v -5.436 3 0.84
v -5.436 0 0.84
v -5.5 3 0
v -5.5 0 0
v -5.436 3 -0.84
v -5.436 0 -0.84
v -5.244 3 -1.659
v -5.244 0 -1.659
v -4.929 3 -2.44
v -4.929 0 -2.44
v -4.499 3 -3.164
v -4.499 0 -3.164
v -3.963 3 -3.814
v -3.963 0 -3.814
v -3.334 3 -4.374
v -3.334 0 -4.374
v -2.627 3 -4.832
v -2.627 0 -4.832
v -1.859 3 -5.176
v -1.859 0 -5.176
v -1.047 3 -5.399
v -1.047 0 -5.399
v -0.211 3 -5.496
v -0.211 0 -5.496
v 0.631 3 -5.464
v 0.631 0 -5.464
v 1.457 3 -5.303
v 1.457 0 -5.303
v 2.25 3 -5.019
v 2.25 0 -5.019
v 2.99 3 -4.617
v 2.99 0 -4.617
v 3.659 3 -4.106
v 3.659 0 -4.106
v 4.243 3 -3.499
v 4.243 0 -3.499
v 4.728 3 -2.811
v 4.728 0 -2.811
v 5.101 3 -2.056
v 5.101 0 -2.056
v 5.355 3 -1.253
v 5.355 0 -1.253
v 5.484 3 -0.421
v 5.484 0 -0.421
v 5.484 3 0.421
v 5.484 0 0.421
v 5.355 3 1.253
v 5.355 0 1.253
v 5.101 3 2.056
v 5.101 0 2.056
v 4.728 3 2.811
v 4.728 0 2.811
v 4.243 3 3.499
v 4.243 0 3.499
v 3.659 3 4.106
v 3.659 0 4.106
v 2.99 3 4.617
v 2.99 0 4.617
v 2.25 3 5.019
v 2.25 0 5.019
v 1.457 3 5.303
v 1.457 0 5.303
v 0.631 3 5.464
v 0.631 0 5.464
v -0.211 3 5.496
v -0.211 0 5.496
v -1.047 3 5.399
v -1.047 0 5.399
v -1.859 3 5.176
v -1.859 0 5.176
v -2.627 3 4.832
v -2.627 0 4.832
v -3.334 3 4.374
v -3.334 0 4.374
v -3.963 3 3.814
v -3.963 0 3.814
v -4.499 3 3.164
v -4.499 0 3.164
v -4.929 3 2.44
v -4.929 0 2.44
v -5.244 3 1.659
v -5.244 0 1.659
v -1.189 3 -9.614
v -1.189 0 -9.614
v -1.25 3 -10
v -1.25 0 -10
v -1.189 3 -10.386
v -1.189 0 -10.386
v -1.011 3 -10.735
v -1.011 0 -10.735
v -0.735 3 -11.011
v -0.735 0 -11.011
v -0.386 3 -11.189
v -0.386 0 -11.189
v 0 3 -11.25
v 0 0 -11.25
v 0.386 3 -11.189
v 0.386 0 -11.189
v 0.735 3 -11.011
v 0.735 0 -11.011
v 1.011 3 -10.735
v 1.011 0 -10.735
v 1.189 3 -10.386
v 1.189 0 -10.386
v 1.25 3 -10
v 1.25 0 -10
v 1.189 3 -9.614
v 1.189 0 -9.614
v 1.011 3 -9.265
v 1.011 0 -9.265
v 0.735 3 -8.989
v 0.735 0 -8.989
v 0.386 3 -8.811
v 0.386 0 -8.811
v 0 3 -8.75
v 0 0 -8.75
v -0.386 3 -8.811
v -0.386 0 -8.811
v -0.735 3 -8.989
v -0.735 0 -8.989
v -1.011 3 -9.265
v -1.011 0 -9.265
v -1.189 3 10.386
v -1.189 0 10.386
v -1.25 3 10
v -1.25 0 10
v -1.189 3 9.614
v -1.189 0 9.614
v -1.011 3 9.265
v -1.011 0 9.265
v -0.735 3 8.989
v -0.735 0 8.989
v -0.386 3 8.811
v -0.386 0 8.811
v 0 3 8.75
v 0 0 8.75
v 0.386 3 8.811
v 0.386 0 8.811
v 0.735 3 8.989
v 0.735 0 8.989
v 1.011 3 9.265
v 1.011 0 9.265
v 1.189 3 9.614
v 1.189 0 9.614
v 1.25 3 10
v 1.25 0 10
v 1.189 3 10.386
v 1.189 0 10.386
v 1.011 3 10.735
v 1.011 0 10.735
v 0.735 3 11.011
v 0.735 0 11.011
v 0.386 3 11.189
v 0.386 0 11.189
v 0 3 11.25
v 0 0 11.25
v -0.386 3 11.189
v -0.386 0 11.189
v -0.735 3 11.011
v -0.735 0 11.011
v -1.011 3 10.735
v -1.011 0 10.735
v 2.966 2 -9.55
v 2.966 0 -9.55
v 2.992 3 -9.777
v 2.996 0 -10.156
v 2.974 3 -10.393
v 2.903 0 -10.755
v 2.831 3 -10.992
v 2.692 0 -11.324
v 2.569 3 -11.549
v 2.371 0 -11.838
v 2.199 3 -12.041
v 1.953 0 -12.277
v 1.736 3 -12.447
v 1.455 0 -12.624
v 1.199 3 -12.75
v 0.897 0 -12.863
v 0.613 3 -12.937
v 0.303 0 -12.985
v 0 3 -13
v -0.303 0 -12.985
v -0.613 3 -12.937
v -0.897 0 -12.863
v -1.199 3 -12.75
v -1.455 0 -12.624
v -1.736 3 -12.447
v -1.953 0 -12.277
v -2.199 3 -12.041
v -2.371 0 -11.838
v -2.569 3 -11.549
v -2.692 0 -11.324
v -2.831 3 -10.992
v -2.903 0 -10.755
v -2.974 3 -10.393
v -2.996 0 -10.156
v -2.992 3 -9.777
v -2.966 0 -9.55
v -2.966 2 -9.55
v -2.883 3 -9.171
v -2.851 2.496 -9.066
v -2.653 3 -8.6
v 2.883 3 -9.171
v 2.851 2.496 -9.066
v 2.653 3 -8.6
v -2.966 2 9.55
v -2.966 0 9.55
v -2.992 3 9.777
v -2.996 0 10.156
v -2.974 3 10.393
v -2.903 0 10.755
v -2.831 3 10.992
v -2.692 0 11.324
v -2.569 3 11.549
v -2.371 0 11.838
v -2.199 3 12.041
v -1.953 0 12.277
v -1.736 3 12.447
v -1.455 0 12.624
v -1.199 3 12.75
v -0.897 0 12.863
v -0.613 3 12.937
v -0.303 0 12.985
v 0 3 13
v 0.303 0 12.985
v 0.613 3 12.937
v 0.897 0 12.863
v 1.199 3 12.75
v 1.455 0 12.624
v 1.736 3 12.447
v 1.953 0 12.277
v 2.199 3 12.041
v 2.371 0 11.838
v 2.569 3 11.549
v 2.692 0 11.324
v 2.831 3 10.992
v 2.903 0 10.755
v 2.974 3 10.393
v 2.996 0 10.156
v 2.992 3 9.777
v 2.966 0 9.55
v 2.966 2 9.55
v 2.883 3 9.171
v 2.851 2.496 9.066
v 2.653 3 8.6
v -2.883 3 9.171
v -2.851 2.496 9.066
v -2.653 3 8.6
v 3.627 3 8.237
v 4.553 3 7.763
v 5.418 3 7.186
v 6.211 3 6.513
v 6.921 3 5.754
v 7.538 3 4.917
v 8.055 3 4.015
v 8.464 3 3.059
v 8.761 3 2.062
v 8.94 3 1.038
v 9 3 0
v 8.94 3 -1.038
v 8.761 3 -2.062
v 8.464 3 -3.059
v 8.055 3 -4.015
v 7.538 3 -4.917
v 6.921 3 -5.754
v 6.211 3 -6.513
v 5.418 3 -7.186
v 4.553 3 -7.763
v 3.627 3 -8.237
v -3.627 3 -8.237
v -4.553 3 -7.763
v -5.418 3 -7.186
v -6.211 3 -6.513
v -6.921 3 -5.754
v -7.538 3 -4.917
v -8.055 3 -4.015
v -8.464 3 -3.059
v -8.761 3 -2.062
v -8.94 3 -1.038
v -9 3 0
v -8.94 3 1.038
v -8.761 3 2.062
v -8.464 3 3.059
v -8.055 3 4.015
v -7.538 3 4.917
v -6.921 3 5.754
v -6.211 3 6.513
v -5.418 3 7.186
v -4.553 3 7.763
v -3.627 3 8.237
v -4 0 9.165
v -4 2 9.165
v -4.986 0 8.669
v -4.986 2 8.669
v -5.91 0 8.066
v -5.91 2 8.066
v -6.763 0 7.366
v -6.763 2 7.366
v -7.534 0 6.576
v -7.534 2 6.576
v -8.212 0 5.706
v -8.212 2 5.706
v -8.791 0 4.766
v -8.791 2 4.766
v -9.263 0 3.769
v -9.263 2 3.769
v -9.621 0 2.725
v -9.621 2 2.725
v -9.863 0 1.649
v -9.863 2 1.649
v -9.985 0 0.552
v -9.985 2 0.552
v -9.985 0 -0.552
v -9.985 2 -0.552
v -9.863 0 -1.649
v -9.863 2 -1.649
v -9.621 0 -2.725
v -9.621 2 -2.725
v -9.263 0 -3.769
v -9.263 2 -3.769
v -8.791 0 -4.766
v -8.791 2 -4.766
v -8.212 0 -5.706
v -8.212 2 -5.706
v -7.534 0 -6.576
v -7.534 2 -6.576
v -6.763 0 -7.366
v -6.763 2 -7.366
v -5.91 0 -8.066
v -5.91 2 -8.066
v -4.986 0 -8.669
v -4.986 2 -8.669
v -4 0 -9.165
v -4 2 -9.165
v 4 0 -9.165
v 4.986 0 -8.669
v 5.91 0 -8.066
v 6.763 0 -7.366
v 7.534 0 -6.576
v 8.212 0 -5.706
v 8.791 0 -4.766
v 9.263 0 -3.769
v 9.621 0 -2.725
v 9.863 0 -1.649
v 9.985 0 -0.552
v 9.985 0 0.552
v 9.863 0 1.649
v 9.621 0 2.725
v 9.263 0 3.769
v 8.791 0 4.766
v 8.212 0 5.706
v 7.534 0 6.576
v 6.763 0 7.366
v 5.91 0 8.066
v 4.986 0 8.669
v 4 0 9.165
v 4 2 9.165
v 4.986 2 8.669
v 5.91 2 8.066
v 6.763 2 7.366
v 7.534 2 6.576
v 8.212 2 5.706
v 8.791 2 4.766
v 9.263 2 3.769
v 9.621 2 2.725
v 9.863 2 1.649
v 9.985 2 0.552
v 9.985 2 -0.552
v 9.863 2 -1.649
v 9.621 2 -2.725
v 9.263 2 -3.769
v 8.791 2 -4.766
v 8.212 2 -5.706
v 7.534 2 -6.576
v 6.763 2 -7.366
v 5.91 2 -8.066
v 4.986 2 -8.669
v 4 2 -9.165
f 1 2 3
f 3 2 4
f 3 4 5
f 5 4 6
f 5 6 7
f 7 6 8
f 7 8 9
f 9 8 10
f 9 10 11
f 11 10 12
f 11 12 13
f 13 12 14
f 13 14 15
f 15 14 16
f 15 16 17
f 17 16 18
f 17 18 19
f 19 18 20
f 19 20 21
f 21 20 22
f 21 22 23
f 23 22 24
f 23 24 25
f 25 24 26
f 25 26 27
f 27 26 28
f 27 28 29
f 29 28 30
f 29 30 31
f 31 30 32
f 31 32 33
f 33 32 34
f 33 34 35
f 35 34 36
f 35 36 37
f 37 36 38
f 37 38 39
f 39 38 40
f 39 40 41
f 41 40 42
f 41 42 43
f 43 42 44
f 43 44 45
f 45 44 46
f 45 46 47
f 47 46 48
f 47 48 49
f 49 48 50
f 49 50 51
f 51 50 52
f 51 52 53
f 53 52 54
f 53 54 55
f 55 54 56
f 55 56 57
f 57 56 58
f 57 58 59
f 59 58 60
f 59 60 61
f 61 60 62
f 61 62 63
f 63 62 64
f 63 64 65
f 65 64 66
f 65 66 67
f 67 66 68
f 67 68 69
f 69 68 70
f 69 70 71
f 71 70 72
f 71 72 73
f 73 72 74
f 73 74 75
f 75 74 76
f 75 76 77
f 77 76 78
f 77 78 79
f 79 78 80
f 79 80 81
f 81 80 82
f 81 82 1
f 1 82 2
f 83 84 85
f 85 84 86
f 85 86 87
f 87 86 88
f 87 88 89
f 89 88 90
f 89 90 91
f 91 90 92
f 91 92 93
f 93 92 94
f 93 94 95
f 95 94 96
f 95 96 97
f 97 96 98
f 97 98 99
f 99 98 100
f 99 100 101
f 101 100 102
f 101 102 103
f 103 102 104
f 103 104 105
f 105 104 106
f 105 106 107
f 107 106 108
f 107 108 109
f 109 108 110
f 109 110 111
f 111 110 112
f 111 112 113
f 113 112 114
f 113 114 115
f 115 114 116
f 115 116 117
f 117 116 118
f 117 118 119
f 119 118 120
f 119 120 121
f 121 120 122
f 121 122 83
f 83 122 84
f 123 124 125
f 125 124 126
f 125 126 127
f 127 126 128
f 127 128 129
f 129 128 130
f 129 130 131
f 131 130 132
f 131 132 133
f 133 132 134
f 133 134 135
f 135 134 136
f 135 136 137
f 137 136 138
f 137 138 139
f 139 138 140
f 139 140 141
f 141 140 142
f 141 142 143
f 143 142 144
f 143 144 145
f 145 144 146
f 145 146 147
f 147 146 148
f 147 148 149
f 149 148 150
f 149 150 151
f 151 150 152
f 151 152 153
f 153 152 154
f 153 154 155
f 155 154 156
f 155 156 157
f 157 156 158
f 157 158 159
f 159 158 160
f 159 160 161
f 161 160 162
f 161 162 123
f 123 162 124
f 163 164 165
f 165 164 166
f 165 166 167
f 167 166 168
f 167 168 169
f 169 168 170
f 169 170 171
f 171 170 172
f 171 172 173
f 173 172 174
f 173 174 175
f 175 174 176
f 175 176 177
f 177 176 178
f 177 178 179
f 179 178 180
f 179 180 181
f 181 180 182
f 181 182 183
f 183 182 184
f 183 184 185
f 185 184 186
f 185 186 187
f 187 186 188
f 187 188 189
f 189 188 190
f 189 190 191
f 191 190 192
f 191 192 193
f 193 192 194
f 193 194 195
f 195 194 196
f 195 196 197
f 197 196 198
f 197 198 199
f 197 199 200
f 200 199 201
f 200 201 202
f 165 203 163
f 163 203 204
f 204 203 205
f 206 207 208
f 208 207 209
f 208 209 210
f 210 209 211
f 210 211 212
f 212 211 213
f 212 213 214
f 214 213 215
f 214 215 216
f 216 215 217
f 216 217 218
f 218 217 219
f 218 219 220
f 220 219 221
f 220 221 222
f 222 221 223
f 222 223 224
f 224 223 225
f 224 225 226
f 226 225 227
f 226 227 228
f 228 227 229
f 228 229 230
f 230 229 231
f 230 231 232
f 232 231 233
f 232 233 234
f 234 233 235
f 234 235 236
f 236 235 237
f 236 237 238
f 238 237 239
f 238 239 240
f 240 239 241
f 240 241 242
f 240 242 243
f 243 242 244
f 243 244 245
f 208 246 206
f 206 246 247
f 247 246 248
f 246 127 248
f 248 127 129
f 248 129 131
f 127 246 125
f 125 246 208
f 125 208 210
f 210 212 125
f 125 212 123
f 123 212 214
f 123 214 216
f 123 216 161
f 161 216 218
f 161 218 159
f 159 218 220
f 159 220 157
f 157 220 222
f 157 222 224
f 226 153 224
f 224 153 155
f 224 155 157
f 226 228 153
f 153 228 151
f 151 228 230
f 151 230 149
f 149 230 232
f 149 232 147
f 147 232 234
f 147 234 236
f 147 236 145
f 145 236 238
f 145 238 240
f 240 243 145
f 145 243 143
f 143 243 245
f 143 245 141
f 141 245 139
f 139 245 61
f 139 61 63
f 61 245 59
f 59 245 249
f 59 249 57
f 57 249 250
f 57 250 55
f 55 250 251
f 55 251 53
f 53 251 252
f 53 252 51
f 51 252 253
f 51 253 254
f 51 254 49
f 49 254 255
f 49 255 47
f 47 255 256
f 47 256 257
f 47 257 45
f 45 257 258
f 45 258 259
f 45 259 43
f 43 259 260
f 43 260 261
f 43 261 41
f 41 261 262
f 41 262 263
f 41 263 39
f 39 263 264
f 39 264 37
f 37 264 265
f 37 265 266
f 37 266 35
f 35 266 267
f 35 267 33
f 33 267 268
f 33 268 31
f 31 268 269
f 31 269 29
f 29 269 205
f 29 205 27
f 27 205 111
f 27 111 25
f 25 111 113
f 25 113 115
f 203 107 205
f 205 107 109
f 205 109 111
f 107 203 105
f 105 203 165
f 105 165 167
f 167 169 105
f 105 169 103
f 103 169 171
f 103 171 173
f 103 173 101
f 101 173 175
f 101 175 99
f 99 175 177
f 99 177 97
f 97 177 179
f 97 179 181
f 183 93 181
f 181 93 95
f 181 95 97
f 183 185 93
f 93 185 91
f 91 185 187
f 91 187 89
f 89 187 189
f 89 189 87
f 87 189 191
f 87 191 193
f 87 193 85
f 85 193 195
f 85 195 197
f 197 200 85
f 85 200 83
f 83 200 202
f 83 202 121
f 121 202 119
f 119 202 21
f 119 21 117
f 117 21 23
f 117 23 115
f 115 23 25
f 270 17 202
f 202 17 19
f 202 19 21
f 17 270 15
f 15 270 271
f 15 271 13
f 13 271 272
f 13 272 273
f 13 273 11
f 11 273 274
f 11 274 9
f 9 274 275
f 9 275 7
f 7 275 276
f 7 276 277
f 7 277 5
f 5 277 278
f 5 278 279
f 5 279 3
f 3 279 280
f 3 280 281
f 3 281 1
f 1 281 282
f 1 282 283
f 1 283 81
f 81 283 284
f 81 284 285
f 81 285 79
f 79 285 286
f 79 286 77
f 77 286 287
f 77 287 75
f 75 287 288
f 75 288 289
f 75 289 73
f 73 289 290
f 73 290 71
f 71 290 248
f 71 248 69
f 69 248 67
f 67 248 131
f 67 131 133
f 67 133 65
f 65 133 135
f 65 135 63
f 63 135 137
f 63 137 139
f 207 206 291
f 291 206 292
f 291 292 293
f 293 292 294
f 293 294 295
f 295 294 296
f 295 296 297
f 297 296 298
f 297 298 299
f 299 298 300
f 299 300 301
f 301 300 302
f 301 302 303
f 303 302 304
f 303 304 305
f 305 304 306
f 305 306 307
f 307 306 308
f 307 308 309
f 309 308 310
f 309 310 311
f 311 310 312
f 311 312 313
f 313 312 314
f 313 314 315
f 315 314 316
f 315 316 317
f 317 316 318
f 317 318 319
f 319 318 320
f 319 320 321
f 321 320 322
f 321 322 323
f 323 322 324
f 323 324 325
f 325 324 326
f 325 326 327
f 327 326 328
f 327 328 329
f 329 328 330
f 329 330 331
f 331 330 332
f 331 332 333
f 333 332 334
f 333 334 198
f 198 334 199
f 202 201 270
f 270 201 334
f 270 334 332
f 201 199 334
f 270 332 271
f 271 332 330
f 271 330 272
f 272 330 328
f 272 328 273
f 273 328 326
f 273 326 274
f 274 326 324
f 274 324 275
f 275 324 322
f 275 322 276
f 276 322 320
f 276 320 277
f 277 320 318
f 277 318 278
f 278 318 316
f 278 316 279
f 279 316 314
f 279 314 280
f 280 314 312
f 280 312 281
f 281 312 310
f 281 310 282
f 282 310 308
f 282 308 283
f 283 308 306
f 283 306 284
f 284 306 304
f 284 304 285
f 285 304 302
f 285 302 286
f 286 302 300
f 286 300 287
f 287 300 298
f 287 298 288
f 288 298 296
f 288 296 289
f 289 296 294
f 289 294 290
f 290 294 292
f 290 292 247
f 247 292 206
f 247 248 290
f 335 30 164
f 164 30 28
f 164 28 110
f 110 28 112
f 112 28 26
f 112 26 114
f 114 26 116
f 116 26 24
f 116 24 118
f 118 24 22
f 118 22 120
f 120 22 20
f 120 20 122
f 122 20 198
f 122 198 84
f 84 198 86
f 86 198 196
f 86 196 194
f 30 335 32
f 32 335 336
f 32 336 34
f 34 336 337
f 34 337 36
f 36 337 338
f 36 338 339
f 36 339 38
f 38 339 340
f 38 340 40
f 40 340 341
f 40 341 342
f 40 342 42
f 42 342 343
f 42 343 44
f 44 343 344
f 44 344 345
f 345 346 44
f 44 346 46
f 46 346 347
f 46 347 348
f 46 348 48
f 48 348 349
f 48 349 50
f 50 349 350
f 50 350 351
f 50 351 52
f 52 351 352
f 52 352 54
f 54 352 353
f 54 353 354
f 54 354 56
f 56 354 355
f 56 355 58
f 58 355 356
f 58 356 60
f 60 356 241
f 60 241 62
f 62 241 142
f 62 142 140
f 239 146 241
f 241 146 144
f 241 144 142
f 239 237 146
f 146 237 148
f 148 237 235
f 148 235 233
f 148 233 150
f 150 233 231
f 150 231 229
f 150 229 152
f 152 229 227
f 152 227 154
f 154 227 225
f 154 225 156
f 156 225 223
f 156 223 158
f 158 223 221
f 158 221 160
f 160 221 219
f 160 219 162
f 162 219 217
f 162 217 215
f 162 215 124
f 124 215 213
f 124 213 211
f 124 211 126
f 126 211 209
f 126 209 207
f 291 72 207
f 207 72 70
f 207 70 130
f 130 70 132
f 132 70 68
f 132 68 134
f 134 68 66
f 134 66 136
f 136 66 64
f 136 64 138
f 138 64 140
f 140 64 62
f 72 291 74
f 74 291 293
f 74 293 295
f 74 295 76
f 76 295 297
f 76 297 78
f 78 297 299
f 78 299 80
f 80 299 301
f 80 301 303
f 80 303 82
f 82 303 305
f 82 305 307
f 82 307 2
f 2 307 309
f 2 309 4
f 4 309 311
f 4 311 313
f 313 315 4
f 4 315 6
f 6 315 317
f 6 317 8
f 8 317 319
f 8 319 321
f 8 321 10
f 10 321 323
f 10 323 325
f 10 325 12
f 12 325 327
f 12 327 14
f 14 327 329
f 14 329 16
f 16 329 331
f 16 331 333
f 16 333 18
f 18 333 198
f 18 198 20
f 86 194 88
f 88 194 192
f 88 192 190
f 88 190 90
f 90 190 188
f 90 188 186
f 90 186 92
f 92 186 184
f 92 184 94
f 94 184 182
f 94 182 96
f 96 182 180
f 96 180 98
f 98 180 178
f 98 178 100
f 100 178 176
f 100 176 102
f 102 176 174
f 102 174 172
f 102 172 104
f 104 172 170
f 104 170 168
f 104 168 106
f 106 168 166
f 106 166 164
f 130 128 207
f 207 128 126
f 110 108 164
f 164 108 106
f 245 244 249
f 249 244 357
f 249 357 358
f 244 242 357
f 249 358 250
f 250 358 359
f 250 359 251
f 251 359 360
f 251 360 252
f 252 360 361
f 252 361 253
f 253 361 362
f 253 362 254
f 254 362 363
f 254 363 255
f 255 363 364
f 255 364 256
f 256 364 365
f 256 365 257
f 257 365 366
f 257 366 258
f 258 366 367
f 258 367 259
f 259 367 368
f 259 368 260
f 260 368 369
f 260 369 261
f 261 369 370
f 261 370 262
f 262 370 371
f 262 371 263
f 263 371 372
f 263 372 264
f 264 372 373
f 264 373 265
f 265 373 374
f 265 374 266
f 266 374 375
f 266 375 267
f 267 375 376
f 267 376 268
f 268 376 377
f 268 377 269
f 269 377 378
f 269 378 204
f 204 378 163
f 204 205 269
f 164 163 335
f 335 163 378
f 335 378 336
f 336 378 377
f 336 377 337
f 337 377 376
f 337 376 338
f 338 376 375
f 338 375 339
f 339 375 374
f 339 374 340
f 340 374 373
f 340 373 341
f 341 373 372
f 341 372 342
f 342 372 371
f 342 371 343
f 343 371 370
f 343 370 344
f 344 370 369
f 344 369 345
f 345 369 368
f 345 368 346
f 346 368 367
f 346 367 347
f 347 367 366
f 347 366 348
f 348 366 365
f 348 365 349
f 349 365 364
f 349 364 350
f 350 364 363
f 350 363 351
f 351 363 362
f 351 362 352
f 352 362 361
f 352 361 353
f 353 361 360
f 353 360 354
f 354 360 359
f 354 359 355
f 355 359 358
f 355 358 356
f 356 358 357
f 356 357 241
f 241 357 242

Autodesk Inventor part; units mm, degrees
ref_plane "YZ Plane" through (0, 0, 0) normal (1, 0, 0) x (0, 1, 0)
ref_plane "XZ Plane" through (0, 0, 0) normal (0, 1, 0) x (-1, 0, 0)
ref_plane "XY Plane" through (0, 0, 0) normal (0, 0, 1) x (1, 0, 0)
sketch "스케치1" plane through (0, 0, 0) normal (0, 1, 0) x (-1, 0, 0)
  circle A0 centre (0, 0) radius 10
  circle A1 centre (0, 10) radius 1.25
  circle A2 centre (0, 10) radius 3
  line L0 (0, 0) -> (3.5124, 0)
  circle A3 centre (0, -10) radius 1.25
  circle A4 centre (0, -10) radius 3
  circle A5 centre (0, 0) radius 5.5
  point P0 (2.9661, 9.55)
  point P1 (-2.9661, 9.55)
  point P2 (-2.9661, -9.55)
  point P3 (2.9661, -9.55)
  dimension "d0" = 20
  dimension "d2" = 2.5
  dimension "d3" = 6
  dimension "d4" = 11
extrude "돌출1" add sketch "스케치1" along normal blind 3 contours A0 A4 A2 | A2 A0 A1 | A0 A1 A2 | A4 A0 A3 | A0 A3 A4
chamfer "모따기1" distance 1 angle 45 2 edges at (10, 3, 0) (-10, 3, 0)
properties part number "책상 고정판 홀더"
